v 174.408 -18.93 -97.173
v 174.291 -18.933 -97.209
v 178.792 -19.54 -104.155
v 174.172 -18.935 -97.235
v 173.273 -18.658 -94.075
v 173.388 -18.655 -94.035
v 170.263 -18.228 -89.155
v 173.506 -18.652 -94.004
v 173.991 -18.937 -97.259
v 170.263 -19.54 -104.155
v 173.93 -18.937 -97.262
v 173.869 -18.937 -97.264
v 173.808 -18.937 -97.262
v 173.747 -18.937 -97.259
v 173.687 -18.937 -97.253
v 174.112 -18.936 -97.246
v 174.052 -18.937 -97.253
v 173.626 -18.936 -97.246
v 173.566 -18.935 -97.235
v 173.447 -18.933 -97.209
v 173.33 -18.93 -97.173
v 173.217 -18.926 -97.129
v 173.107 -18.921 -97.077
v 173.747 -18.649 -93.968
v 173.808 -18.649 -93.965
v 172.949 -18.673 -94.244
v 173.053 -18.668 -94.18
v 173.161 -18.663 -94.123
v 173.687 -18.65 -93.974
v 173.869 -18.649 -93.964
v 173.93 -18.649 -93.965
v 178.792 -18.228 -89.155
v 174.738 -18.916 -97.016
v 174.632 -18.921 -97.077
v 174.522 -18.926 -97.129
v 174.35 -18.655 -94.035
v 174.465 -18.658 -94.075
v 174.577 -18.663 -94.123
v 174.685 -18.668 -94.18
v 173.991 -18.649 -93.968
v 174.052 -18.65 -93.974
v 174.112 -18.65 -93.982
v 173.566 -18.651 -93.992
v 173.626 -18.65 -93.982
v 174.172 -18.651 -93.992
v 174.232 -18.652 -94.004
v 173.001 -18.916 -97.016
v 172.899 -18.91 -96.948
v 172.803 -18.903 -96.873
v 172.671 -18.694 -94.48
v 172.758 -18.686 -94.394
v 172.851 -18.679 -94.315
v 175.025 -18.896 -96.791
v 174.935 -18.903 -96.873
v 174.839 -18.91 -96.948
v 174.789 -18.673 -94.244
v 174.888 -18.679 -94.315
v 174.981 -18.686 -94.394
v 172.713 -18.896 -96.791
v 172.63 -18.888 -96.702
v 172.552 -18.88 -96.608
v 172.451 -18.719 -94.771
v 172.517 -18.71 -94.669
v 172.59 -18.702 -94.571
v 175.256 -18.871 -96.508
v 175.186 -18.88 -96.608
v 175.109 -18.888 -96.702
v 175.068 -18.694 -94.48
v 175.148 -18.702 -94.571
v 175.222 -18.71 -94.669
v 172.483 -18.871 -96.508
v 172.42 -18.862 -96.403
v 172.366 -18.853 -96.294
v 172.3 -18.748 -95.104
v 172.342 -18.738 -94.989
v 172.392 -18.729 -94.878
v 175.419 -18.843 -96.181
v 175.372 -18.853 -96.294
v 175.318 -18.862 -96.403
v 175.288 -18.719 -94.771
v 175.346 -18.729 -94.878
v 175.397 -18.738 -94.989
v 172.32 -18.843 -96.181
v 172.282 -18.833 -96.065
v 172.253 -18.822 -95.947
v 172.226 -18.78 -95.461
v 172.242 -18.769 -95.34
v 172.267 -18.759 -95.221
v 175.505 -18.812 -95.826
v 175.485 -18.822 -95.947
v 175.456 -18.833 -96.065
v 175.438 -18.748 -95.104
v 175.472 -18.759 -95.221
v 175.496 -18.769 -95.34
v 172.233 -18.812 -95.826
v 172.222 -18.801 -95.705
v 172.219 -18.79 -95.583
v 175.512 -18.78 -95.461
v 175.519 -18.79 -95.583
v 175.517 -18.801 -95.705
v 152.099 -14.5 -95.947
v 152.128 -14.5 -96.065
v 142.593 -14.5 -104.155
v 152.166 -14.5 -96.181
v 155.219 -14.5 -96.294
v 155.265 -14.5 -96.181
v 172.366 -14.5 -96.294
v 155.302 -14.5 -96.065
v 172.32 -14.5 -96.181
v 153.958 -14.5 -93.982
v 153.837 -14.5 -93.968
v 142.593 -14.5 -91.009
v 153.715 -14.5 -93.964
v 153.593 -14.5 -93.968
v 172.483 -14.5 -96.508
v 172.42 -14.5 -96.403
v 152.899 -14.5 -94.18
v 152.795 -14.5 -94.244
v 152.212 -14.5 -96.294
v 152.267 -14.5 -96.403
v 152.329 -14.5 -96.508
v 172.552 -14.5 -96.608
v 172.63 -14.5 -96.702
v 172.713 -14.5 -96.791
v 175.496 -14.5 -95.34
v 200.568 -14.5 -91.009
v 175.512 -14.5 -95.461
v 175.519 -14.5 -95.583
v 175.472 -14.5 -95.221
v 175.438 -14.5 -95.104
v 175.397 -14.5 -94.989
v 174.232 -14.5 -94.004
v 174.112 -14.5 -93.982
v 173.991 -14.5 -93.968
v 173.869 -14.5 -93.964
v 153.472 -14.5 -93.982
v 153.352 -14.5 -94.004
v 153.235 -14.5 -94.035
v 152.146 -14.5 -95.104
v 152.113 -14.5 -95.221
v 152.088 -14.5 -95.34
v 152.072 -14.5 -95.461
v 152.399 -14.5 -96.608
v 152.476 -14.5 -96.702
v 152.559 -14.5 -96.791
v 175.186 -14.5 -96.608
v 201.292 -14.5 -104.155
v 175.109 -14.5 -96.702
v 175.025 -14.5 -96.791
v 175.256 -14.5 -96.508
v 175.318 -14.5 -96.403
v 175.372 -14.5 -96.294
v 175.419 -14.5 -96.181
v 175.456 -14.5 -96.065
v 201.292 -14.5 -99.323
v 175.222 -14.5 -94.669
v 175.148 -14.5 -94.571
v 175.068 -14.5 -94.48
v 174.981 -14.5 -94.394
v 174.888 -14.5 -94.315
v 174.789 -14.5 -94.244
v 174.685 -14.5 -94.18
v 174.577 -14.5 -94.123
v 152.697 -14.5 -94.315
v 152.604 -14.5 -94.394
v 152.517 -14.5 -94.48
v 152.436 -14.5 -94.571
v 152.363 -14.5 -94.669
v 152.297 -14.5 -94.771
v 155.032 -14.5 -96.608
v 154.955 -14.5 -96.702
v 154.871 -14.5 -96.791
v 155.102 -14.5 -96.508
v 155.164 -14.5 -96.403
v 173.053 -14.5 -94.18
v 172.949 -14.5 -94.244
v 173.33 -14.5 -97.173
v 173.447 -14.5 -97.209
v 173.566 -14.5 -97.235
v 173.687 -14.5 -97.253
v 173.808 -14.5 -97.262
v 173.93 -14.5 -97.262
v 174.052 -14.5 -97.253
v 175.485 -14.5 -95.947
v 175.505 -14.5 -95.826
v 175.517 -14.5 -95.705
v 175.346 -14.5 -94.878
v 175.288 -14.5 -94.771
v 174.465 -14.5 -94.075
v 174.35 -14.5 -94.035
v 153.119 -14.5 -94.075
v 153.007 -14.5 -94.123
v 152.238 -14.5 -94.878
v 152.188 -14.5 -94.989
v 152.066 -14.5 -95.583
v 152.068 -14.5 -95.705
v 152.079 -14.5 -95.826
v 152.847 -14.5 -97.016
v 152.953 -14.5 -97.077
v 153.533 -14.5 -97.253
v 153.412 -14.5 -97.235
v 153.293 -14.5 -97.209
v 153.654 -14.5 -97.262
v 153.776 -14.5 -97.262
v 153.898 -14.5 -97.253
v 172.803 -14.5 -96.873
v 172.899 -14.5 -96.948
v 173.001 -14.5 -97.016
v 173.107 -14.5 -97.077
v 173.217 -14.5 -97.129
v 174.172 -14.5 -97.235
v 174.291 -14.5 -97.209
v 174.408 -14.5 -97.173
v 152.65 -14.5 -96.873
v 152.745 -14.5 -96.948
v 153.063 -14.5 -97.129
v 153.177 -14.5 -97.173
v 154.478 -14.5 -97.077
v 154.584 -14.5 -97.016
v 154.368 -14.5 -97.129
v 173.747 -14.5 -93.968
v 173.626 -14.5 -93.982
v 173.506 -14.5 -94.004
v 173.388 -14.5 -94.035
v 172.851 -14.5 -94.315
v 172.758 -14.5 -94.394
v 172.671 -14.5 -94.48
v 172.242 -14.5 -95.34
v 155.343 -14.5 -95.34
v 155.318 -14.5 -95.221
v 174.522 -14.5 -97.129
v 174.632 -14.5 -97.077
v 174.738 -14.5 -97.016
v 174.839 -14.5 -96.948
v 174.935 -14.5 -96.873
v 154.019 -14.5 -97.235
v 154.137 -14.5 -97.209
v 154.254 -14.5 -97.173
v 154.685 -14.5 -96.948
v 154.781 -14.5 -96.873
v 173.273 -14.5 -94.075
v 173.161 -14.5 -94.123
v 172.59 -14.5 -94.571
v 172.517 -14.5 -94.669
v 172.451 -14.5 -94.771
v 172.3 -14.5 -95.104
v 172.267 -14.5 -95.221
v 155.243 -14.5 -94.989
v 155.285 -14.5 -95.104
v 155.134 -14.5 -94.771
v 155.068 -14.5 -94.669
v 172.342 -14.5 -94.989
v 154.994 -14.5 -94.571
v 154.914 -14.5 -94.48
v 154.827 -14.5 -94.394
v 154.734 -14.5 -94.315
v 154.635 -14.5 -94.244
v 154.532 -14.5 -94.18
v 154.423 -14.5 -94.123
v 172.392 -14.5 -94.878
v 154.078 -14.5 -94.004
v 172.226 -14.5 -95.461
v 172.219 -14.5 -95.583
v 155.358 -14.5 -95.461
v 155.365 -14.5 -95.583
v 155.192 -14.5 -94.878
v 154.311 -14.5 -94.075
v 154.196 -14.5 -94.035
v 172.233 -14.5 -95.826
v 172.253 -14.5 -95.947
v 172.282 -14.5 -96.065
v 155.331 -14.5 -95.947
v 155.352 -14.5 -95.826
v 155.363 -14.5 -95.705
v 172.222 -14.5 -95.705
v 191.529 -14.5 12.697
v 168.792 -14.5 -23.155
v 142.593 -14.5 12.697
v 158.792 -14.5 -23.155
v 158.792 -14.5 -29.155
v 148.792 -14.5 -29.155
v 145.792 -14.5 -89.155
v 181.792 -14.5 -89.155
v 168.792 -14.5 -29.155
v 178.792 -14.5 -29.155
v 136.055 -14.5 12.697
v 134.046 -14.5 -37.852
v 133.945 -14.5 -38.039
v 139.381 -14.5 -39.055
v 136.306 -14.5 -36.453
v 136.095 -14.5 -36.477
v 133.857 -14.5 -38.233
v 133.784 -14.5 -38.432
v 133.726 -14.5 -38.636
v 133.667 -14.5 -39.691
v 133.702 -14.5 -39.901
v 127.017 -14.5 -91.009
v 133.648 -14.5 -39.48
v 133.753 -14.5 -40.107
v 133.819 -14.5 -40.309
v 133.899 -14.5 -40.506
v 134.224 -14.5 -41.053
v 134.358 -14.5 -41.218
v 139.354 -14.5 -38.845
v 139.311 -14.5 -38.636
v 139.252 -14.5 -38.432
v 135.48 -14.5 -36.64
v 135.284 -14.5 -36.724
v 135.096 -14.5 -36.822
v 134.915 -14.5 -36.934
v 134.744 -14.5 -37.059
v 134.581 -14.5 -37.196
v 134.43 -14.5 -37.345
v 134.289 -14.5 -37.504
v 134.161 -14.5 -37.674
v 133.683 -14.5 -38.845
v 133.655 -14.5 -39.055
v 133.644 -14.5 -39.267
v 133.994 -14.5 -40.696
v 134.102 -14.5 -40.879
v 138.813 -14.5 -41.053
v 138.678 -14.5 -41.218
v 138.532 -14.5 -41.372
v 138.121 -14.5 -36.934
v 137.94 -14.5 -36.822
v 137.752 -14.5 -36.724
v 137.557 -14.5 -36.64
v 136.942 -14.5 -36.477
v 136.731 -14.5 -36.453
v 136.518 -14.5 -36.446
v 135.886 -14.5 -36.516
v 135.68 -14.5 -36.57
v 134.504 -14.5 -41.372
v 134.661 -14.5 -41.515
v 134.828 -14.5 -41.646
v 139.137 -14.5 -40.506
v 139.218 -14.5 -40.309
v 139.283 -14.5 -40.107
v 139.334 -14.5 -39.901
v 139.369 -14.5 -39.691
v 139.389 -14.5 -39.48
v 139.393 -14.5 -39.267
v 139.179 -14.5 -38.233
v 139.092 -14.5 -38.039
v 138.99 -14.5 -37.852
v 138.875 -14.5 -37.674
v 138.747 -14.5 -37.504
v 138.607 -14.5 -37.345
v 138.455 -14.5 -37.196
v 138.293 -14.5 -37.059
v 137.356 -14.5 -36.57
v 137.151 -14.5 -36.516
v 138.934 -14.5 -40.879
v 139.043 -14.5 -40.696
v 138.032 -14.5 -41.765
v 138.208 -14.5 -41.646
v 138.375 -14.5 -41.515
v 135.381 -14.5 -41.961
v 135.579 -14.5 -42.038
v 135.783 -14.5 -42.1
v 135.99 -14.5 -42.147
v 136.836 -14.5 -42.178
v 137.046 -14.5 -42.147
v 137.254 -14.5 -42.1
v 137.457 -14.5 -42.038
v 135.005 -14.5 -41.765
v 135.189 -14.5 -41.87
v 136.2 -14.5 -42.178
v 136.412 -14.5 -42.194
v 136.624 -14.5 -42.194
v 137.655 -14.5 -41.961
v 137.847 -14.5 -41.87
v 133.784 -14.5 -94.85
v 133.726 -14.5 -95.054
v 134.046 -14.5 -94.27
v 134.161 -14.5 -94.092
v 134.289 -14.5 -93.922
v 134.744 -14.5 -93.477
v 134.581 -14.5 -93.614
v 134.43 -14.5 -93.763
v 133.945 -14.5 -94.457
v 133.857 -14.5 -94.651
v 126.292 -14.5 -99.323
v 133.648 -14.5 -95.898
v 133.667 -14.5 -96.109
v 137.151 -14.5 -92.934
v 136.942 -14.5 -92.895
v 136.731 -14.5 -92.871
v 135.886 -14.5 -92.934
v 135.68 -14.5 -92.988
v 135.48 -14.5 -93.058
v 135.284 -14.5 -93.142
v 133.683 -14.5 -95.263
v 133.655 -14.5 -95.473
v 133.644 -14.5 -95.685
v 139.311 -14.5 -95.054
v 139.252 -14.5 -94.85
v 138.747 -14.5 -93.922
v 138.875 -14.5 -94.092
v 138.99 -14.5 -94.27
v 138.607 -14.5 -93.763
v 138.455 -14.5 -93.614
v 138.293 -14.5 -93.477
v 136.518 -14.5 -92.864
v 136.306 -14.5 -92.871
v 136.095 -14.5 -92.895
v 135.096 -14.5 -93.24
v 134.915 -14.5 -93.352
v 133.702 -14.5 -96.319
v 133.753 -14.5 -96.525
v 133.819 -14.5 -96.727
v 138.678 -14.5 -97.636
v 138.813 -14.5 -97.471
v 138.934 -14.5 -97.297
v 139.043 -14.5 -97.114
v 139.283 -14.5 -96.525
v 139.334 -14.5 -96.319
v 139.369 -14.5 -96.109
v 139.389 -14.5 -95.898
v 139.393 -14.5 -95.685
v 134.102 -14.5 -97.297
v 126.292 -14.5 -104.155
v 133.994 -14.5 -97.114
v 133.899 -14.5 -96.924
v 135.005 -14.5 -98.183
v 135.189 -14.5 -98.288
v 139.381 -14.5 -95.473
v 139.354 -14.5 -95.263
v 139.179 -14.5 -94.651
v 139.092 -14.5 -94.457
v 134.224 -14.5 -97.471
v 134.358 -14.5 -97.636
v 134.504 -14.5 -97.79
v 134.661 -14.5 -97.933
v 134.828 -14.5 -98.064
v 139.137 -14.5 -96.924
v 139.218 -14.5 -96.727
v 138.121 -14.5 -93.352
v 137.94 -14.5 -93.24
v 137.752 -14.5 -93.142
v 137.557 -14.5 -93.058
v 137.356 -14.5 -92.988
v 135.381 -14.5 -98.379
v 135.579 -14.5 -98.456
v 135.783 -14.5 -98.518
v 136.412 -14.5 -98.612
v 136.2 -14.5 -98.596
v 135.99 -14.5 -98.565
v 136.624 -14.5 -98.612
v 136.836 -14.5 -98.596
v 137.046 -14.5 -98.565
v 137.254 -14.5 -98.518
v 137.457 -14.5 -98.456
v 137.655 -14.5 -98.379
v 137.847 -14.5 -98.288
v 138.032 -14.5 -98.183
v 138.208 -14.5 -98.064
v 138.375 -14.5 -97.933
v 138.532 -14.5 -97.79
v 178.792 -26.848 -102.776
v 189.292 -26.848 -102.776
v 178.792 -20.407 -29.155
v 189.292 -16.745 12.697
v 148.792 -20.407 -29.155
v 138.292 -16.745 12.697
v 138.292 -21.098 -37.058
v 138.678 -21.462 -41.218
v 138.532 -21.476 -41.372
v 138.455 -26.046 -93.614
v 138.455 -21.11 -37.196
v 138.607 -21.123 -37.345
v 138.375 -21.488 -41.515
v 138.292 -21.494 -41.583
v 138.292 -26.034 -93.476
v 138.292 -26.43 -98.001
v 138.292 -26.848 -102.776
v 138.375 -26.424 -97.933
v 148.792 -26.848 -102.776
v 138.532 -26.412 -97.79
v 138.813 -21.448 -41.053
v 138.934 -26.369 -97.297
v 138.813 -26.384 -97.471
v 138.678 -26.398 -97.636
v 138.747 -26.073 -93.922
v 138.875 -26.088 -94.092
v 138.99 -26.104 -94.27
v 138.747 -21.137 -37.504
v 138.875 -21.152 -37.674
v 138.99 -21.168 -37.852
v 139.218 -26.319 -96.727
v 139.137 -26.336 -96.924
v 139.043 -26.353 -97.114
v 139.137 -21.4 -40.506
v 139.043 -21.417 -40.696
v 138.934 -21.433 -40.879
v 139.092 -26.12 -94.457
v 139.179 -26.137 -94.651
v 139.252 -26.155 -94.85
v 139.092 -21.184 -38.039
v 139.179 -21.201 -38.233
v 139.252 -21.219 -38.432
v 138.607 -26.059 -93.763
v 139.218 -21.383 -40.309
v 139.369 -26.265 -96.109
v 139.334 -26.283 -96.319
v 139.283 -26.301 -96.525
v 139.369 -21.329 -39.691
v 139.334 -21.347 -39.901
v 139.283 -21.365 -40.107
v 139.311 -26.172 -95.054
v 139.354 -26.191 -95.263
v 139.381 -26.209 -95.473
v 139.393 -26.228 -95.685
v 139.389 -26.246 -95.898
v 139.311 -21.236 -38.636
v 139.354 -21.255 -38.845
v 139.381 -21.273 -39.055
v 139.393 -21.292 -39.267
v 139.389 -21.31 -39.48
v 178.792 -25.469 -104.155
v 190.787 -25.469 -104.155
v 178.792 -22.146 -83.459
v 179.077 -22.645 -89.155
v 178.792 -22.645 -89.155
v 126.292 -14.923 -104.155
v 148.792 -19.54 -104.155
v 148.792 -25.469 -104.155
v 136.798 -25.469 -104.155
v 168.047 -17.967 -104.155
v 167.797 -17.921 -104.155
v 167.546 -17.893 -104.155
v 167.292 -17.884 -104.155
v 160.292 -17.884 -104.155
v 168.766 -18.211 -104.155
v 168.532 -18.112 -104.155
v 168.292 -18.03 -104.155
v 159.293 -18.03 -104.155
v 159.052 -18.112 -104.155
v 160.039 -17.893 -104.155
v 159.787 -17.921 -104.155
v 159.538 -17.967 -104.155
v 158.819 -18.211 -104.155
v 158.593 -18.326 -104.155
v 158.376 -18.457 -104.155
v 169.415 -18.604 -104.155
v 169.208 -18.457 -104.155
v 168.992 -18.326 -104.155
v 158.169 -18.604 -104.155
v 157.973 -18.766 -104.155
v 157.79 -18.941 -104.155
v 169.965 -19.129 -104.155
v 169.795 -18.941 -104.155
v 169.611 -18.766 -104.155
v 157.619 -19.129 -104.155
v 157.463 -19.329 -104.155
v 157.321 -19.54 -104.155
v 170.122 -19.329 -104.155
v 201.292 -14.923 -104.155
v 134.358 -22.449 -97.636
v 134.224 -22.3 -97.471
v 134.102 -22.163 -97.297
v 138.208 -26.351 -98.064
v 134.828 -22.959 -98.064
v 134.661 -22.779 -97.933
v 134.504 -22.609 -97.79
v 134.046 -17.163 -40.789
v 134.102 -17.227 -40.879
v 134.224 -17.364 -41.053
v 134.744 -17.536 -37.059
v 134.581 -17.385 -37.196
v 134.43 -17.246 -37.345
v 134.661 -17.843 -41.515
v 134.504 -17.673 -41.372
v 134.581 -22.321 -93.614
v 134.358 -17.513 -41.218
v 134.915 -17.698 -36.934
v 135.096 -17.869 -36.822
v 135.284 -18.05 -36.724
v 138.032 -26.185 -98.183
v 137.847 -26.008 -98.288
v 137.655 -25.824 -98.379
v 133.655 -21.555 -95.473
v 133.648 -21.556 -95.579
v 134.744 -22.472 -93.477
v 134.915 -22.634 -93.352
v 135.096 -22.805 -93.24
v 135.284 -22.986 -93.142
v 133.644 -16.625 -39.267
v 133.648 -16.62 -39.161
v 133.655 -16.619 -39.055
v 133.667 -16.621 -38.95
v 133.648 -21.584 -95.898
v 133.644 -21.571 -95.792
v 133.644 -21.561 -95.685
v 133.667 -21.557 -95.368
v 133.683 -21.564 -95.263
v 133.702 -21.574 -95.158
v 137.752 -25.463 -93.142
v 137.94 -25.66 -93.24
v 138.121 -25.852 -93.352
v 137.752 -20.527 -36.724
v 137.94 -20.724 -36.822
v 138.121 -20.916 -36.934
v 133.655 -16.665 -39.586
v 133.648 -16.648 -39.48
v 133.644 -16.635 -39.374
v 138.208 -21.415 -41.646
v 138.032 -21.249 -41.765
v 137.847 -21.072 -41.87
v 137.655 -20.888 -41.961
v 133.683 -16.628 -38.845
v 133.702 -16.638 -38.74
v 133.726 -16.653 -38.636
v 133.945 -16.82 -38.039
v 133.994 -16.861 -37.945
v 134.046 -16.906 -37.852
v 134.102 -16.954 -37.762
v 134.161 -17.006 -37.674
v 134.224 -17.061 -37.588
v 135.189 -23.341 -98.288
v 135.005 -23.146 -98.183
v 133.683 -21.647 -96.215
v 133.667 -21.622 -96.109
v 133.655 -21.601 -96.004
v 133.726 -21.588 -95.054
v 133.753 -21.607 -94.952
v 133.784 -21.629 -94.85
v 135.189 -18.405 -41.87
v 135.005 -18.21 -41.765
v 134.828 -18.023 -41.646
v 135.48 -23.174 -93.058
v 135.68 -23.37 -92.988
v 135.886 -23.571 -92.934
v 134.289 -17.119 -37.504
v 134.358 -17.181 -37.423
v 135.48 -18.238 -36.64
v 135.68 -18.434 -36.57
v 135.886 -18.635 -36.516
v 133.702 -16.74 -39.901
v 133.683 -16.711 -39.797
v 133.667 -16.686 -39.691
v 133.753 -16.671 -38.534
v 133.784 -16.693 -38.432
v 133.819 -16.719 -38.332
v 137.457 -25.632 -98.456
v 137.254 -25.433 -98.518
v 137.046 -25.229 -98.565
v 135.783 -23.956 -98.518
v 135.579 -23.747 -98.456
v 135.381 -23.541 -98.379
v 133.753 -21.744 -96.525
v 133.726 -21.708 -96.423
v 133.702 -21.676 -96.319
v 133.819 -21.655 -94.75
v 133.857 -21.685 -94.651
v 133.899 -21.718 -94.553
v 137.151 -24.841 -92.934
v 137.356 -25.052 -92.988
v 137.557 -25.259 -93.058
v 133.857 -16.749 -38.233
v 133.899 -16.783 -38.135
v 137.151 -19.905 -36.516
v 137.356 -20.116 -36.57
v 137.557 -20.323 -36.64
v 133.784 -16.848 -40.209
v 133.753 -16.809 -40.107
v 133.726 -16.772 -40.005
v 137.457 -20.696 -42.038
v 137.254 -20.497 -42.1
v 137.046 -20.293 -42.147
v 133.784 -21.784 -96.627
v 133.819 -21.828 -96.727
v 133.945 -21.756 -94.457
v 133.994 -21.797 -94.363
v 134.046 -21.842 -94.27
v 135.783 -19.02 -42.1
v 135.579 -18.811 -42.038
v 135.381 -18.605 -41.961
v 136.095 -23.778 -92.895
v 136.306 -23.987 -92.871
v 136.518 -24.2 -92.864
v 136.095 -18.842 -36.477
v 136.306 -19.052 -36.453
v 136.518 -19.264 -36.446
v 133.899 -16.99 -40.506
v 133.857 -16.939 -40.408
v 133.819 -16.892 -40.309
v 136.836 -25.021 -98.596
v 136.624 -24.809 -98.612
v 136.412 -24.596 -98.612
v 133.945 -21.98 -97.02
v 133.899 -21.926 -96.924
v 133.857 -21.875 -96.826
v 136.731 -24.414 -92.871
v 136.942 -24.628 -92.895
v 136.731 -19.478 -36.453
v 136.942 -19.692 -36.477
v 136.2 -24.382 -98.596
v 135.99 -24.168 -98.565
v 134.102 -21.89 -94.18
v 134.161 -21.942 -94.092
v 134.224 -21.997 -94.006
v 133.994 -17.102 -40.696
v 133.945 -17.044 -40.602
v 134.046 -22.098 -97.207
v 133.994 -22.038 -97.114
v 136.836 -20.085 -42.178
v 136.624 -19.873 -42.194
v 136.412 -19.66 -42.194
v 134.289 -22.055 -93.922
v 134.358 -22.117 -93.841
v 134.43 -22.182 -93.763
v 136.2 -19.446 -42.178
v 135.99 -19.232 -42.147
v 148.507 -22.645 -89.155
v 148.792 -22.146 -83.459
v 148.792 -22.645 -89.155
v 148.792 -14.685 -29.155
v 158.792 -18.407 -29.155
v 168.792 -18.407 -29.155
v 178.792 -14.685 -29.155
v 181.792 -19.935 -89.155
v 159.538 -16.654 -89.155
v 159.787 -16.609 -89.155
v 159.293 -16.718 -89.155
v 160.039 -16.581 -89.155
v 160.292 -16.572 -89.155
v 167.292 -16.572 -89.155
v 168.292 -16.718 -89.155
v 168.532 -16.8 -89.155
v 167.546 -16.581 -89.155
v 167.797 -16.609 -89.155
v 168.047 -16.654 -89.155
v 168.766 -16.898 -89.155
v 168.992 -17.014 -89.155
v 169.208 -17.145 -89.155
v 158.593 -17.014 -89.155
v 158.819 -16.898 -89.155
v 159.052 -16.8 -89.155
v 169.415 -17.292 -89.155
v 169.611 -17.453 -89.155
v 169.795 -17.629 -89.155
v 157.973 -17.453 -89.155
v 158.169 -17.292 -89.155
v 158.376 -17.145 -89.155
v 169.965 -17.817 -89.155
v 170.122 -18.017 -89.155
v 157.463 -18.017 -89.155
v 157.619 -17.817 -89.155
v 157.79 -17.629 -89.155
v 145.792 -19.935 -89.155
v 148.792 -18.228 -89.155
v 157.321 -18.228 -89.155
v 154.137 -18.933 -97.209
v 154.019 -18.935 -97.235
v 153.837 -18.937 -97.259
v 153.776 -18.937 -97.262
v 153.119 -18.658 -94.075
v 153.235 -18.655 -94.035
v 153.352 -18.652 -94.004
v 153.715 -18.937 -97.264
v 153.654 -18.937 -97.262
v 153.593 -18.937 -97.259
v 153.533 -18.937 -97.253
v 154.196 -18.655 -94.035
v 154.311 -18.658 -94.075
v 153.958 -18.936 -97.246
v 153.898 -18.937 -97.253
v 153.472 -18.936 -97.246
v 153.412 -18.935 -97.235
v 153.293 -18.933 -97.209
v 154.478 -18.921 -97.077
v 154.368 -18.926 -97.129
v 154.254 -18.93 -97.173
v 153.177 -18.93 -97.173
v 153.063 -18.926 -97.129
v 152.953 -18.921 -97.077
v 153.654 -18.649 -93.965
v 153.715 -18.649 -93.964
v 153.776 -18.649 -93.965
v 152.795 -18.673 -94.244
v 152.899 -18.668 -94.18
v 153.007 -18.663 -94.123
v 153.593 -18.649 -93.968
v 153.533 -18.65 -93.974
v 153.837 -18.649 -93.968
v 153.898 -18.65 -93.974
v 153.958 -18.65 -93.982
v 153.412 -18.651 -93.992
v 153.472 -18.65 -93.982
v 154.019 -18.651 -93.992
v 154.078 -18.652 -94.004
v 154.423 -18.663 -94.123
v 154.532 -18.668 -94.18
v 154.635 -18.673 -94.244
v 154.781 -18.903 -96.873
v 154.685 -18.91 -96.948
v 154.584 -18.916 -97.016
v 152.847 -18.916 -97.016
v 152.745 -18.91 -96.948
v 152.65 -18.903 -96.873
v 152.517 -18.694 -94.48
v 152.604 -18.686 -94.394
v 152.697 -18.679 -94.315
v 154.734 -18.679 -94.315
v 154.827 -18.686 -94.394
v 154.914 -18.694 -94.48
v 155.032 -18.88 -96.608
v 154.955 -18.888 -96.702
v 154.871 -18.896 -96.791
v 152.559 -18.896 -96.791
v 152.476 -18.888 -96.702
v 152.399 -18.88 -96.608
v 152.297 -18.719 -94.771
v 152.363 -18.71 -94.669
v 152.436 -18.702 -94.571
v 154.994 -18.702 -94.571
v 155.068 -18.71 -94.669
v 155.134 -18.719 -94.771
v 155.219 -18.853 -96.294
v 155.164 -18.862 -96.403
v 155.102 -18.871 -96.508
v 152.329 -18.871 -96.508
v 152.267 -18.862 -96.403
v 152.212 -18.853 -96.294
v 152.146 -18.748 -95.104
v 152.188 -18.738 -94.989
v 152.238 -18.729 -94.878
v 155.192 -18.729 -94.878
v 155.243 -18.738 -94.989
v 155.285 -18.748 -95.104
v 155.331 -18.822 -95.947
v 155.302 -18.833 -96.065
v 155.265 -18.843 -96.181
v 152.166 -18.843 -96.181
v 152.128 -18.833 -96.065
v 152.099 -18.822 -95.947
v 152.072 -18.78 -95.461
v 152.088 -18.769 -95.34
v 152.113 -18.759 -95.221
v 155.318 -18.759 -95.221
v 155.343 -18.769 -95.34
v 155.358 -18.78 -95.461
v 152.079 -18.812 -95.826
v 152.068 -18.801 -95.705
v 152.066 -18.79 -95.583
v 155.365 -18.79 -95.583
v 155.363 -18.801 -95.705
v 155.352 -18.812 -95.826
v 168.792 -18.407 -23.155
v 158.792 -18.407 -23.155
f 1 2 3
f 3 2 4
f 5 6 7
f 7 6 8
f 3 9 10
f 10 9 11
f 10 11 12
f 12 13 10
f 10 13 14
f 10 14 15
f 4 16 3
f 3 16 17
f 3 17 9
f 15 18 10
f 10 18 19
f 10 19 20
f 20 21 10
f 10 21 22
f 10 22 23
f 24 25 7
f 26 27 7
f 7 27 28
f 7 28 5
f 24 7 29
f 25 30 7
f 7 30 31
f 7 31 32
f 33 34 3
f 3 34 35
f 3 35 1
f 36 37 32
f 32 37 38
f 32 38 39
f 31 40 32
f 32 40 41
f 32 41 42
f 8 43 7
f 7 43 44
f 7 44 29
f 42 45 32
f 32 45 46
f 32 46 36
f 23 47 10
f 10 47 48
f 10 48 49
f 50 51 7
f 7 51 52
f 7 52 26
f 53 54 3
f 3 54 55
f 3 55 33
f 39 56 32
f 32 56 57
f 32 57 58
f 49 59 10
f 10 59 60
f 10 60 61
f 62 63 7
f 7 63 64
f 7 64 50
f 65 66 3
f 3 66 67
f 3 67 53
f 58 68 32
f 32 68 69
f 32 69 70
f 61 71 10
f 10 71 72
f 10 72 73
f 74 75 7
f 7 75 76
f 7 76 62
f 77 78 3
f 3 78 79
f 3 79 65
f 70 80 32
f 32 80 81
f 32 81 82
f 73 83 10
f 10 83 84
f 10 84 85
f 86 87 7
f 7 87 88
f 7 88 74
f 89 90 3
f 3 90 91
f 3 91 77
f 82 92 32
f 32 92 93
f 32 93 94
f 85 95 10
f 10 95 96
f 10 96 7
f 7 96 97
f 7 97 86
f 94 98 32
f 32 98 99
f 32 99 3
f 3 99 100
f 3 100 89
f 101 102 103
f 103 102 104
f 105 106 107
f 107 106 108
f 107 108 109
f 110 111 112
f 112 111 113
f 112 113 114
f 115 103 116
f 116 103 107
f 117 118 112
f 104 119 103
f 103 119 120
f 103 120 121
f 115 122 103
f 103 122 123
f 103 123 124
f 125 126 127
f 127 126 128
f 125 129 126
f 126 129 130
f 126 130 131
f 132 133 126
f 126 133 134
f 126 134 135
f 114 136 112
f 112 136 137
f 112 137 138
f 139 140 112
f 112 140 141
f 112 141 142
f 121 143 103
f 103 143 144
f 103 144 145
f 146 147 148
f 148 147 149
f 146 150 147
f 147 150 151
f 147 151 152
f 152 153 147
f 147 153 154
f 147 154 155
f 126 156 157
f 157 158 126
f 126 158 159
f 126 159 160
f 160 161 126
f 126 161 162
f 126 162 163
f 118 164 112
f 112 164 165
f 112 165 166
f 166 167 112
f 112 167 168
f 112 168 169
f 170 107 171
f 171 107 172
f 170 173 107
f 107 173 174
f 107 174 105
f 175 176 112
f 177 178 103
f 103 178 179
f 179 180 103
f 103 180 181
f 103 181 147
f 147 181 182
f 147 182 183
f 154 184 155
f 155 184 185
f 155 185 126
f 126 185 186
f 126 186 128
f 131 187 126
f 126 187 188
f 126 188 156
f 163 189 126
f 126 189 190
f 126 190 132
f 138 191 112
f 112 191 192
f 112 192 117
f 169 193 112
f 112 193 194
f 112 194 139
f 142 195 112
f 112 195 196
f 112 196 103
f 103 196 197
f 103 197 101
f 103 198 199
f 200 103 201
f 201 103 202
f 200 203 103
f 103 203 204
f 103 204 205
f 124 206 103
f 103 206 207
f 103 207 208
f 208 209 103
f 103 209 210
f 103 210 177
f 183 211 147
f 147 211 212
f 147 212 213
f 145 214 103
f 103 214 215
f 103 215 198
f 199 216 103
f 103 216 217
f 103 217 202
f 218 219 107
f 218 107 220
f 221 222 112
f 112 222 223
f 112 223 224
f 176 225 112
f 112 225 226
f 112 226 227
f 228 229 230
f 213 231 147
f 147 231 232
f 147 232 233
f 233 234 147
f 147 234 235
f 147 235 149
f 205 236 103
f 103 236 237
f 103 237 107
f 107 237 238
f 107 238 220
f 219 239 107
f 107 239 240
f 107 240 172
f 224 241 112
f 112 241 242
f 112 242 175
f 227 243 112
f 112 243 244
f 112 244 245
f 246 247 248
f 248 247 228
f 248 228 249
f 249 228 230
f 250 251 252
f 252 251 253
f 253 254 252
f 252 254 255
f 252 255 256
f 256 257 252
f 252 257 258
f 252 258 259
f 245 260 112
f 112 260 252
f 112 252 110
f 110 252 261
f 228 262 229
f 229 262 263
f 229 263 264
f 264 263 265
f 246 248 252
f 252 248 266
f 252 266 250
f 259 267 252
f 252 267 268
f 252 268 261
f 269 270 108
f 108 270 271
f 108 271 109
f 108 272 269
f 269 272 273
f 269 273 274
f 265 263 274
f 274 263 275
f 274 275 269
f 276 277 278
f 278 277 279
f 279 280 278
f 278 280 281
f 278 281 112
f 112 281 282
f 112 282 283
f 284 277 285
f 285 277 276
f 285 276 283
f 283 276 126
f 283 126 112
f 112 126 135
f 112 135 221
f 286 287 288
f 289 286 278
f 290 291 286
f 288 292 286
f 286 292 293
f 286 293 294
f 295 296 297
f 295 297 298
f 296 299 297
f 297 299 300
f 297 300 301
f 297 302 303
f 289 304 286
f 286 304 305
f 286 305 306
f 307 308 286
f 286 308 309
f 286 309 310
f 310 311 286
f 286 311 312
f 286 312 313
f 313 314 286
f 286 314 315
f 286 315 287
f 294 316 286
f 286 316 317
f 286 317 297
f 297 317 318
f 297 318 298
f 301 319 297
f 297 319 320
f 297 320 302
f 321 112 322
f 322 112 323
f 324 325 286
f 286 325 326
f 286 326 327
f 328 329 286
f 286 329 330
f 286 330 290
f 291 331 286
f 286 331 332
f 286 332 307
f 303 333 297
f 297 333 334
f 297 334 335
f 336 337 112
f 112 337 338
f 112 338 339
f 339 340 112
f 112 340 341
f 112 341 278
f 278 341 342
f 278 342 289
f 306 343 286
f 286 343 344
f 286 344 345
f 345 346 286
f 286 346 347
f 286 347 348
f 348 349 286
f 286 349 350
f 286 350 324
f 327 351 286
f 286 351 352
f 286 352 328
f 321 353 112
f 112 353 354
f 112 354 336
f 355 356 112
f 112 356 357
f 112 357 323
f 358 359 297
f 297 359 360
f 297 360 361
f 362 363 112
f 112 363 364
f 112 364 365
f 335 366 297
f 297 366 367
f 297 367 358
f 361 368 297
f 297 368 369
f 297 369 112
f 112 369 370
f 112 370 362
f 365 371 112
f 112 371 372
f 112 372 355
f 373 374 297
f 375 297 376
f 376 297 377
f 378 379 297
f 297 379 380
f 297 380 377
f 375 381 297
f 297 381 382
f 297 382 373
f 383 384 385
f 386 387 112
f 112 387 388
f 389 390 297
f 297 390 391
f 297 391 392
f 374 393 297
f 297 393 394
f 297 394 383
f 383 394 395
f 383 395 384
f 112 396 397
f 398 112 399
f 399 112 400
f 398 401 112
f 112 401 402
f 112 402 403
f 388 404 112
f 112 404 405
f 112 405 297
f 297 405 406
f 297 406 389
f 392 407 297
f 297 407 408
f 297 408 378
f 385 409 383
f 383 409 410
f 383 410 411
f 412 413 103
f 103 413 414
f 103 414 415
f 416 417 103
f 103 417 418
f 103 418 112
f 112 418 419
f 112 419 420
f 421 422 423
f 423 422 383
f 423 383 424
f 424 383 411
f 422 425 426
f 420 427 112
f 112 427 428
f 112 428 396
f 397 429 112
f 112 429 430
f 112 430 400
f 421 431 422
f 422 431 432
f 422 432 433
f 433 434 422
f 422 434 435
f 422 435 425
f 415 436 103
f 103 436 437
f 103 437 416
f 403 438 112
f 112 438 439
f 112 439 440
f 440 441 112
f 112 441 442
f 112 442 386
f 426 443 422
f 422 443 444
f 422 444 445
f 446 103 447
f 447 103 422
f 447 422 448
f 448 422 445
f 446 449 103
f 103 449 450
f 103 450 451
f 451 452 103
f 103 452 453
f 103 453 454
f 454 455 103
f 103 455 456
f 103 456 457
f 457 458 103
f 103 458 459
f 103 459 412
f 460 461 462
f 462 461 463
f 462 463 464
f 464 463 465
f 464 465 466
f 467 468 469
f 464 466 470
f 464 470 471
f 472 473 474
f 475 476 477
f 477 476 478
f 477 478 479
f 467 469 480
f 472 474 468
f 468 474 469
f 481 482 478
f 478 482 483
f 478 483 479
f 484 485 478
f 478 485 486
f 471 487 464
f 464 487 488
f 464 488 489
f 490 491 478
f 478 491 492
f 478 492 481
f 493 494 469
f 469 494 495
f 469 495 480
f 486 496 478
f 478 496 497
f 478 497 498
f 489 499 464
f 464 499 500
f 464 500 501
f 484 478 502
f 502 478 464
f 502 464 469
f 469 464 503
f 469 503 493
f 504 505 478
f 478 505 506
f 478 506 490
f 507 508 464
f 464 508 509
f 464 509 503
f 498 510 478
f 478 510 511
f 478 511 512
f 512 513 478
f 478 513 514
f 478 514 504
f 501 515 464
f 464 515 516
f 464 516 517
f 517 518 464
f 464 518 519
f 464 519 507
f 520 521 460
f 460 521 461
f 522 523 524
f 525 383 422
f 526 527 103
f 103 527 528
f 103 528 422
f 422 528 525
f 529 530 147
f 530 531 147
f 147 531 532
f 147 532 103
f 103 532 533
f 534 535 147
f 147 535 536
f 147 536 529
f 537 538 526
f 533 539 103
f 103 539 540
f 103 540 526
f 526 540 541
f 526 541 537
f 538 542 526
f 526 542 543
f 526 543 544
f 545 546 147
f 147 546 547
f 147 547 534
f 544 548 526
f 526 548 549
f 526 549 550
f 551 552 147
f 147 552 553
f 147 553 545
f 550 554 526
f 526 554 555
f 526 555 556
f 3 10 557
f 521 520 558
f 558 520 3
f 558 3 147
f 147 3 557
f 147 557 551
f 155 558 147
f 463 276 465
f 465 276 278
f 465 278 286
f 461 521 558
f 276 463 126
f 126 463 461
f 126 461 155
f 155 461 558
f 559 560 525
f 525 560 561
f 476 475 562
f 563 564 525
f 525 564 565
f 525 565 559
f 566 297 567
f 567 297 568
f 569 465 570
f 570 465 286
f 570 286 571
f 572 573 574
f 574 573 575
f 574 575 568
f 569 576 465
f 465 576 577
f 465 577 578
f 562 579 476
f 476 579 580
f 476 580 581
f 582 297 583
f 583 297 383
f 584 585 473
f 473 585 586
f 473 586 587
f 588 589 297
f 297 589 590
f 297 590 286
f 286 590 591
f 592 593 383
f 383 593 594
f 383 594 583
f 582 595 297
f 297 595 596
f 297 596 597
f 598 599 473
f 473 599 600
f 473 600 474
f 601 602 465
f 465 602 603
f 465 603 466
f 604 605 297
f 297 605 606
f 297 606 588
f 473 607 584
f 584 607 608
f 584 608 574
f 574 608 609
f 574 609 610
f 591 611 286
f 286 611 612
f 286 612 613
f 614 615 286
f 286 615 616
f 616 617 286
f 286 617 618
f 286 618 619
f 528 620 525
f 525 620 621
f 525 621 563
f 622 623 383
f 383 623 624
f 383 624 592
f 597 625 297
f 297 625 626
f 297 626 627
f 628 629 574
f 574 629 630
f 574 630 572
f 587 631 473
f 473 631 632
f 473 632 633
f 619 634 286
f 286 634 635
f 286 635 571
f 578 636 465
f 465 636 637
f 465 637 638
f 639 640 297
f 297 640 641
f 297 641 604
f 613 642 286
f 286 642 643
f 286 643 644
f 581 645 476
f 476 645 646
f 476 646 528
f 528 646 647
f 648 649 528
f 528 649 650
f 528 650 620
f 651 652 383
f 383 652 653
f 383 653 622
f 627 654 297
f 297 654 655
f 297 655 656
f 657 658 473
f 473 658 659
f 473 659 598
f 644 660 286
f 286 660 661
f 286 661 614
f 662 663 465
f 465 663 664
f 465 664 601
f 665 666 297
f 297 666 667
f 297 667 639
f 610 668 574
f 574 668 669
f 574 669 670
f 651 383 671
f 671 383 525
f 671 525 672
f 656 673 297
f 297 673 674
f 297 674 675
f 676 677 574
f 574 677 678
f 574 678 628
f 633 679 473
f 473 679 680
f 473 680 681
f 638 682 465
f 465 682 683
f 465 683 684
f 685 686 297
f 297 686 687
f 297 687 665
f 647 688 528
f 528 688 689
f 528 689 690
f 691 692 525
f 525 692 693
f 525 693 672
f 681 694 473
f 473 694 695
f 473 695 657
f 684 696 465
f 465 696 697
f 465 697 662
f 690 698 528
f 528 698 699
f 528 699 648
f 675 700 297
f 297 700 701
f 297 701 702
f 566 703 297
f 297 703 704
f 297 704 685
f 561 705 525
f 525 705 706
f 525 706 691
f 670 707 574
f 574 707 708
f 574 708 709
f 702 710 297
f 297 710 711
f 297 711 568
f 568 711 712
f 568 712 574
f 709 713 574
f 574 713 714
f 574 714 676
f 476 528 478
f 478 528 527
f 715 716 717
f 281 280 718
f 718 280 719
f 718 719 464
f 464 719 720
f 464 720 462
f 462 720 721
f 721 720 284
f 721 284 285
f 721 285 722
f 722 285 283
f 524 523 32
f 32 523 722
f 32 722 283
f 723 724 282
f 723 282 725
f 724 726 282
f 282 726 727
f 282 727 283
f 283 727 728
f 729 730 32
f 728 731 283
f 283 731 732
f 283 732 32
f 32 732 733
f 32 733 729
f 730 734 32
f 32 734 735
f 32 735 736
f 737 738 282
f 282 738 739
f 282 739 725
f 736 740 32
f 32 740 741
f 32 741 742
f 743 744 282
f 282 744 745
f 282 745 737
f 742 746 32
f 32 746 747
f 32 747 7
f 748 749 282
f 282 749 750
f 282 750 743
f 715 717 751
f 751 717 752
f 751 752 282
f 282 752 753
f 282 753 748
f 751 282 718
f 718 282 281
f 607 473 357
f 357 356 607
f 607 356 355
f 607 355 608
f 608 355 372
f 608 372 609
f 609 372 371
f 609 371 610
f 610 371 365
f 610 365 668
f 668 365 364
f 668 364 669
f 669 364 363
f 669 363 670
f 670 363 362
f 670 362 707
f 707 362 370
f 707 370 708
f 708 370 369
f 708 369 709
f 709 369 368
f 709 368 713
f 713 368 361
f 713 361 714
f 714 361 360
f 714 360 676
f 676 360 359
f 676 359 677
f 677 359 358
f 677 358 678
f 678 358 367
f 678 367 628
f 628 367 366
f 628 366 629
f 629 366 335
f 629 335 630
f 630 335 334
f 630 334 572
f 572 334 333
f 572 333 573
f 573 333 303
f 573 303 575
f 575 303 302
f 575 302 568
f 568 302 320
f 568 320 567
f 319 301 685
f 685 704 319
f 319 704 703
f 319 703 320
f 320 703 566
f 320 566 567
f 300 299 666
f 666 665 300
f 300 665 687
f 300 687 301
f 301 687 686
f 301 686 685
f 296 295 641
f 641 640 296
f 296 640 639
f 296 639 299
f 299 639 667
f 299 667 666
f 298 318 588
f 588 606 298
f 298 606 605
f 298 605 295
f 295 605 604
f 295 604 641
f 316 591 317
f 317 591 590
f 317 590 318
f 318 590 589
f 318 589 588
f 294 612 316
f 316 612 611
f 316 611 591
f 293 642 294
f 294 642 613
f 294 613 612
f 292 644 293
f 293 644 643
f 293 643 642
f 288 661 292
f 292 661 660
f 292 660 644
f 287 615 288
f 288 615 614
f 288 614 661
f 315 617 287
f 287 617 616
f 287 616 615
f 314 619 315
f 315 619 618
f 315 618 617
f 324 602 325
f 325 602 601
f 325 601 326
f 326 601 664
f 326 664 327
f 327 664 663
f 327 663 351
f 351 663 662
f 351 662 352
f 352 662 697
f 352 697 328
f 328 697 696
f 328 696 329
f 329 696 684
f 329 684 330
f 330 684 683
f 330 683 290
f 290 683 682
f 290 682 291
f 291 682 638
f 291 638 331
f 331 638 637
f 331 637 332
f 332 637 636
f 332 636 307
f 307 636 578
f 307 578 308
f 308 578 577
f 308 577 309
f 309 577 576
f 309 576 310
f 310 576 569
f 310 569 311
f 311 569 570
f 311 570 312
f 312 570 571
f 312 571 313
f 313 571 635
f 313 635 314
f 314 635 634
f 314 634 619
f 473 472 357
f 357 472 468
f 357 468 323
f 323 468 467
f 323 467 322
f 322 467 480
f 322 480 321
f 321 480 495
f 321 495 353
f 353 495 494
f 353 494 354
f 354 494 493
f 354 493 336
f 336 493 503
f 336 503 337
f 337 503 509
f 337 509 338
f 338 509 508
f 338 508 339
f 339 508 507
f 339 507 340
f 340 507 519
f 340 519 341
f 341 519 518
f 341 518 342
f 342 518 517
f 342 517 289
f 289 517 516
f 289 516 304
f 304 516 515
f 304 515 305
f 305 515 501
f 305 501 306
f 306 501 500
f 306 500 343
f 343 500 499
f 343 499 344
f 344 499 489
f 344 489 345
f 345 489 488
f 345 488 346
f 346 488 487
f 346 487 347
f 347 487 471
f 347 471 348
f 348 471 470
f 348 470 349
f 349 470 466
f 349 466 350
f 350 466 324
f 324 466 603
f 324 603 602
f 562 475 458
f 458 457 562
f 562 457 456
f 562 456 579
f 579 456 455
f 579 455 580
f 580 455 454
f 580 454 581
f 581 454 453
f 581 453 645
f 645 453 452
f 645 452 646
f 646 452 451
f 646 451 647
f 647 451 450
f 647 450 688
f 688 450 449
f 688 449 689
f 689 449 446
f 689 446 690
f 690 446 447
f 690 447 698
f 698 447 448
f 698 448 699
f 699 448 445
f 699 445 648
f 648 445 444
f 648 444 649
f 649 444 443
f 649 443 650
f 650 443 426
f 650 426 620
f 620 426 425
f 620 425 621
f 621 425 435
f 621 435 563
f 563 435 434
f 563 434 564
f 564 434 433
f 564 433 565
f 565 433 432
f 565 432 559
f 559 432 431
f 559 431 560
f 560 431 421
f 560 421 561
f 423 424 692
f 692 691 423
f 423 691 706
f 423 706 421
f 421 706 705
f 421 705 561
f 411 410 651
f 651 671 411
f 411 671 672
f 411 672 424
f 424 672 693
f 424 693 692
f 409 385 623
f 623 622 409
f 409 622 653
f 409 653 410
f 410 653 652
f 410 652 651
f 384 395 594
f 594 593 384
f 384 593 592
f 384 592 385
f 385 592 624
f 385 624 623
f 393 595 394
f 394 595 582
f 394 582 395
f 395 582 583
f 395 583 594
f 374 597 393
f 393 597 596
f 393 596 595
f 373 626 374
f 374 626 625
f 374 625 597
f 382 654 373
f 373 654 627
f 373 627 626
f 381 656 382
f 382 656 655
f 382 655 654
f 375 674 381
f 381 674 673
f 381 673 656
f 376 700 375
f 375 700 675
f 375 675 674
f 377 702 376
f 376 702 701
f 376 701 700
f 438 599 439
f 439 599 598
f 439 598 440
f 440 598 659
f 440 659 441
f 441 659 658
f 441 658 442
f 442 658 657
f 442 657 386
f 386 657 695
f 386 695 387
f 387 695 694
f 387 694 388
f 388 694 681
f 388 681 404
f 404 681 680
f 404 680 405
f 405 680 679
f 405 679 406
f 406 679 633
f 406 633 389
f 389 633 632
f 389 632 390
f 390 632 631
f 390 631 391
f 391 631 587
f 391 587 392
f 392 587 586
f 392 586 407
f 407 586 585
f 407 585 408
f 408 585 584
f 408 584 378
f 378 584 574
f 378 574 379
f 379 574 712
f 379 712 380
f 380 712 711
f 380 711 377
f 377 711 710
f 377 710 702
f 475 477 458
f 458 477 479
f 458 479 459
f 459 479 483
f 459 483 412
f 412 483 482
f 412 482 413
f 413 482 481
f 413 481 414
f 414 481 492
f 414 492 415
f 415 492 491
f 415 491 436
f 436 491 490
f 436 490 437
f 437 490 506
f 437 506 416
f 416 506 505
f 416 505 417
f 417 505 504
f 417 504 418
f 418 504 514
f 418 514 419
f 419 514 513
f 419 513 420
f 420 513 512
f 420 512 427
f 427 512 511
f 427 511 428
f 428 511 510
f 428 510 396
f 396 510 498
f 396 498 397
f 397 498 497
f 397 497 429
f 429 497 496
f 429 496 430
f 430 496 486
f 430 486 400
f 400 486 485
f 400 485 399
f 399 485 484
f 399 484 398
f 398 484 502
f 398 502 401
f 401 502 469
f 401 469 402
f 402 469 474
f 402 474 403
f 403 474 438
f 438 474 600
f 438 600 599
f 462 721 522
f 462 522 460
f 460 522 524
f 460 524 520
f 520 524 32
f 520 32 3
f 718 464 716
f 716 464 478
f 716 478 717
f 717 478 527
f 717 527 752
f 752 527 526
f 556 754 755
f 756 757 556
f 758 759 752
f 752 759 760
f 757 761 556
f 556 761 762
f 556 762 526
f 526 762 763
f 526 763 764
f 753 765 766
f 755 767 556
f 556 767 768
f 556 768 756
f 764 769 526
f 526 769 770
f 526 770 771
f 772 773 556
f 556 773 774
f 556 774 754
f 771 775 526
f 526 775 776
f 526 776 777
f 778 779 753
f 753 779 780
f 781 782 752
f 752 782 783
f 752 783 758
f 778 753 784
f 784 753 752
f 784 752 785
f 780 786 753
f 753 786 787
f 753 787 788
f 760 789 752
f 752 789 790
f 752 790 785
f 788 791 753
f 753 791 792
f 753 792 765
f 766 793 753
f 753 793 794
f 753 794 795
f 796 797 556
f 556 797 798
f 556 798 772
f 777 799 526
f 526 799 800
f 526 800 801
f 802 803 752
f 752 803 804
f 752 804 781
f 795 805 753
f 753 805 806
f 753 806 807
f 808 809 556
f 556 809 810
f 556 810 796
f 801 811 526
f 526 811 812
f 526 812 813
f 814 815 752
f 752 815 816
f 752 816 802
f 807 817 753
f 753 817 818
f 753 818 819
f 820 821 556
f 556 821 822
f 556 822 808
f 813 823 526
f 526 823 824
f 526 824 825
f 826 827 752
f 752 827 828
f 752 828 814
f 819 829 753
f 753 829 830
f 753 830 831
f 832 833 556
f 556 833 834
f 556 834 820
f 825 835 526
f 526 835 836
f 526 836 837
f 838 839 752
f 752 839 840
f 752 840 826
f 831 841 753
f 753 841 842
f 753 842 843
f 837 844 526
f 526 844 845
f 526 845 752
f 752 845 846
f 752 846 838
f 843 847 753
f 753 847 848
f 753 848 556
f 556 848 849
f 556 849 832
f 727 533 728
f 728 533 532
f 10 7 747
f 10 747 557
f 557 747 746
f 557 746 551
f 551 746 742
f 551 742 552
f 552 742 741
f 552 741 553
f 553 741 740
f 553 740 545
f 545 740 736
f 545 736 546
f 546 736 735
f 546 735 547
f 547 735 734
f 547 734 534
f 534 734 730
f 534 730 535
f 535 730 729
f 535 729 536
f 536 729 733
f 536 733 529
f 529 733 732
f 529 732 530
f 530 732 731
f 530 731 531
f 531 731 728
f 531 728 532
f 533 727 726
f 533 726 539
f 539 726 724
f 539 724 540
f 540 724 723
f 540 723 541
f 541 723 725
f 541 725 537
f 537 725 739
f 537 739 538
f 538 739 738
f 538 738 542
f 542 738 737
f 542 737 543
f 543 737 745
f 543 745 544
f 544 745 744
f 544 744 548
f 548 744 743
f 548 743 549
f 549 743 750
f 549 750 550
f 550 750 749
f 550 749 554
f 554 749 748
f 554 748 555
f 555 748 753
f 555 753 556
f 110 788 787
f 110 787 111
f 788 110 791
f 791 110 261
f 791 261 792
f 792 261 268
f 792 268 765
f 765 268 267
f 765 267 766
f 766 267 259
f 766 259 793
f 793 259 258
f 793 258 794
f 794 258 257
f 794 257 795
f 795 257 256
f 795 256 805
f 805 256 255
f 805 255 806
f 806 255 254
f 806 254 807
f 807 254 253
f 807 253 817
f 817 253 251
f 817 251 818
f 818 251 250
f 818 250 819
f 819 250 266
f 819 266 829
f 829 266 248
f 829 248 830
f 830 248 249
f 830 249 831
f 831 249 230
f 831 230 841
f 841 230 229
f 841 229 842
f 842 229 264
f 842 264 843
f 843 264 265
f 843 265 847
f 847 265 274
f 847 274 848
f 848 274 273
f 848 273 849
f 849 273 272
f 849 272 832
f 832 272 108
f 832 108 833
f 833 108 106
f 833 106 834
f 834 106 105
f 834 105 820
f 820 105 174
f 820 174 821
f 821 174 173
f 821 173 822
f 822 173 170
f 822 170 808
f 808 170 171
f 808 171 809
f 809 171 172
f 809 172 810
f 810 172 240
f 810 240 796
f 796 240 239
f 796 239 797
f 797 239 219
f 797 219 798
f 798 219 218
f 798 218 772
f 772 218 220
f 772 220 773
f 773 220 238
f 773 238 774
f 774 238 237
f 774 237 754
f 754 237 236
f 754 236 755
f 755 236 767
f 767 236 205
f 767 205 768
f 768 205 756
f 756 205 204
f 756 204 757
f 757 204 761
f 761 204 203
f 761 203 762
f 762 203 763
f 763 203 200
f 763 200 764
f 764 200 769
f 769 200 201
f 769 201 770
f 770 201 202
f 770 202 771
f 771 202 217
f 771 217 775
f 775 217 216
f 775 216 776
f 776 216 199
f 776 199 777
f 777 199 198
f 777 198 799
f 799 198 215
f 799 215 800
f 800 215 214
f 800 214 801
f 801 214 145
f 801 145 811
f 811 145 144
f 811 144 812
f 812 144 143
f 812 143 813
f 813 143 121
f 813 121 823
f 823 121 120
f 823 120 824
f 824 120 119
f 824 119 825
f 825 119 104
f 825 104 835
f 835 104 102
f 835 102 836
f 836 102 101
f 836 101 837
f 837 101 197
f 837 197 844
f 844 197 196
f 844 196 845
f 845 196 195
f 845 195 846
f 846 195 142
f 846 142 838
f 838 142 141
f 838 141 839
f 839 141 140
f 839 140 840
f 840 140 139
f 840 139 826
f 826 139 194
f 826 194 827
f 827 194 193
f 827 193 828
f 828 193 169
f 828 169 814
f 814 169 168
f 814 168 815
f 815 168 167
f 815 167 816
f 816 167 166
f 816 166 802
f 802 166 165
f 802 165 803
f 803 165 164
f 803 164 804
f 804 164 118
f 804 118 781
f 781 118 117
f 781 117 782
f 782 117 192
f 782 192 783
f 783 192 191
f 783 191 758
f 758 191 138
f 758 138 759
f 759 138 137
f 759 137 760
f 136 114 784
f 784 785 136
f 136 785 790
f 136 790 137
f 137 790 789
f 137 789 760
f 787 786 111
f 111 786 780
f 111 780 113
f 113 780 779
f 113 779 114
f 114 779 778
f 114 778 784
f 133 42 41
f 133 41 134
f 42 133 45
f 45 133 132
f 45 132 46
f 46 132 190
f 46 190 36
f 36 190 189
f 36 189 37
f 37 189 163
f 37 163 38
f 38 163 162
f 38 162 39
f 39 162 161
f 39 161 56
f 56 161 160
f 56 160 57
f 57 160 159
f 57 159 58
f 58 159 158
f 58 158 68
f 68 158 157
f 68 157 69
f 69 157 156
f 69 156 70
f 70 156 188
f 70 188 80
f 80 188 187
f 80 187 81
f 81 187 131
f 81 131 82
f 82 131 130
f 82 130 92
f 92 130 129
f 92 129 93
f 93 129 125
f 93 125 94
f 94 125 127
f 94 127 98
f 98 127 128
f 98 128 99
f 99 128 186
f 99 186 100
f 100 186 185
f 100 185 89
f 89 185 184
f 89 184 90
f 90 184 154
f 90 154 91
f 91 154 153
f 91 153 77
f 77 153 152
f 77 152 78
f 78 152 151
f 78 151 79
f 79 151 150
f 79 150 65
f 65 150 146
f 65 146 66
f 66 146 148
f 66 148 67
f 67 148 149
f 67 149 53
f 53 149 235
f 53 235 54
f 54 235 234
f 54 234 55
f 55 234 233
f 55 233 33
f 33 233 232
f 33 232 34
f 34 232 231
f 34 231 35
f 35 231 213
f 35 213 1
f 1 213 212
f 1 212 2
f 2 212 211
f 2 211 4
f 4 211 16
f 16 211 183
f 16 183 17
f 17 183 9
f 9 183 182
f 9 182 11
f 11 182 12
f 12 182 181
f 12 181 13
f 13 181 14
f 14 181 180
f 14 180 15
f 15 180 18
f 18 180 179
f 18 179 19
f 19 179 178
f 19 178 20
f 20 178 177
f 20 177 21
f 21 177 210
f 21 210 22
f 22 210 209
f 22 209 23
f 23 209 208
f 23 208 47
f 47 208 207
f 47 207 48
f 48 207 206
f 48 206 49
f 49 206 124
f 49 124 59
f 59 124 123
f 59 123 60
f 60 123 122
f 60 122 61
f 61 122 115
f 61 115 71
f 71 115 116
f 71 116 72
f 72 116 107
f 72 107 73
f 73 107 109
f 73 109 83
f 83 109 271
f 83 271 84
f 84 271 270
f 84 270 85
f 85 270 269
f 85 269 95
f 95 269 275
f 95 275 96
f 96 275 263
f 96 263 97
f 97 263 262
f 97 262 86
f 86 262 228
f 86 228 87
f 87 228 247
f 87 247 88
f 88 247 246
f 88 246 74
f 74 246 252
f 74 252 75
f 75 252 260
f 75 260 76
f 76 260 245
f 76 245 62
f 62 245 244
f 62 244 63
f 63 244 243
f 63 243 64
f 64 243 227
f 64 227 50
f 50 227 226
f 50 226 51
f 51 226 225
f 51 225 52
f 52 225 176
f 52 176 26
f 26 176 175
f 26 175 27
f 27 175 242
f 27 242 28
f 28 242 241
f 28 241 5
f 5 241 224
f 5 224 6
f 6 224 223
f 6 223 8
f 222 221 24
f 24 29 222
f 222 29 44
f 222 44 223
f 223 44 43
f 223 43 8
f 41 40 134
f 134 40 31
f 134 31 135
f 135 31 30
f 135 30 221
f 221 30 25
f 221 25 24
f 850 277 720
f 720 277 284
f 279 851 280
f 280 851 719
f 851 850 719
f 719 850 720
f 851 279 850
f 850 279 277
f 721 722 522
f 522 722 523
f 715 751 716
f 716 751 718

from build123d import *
from OCP.BRepFilletAPI import BRepFilletAPI_MakeChamfer

# Parameters (mm, degrees)
BOSS_EXTRUDE1_START = 126.292269218
BOSS_EXTRUDE1_DEPTH = 75
CHAMFER1_SIZE       = 12
CHAMFER2_SIZE       = 1.5
CHAMFER2_SIZE2      = 1.38459352
CUT_EXTRUDE1_REACH  = 228.979
SKETCH5_R           = 2.875
CUT_EXTRUDE2_DEPTH  = 227.978701072
SKETCH6_W           = 30
SKETCH6_H           = 15
SKETCH6_R           = 2.875
SKETCH6_H_2         = 60
CUT_EXTRUDE3_DEPTH  = 227.978701072
BOSS_EXTRUDE2_START = 148.792269218
BOSS_EXTRUDE2_DEPTH = 30
CUT_EXTRUDE4_DEPTH  = 30
SKETCH11_R          = 1.65
CUT_EXTRUDE5_DEPTH  = 227.978701072
SKETCH12_W          = 10
SKETCH12_H          = 3.906967626
CUT_EXTRUDE6_DEPTH  = 6
CHAMFER3_SIZE       = 2.7
CHAMFER3_SIZE2      = 2.711828512


# Read off the part's stored shape, not the designer's step: Boss-Extrude1, Boss-Extrude2
with BuildPart() as part:
    # Boss-Extrude1 outline → Boss-Extrude1 (new body)
    with BuildSketch(Plane.YZ.offset(BOSS_EXTRUDE1_START)):
        Polygon((-26.968617391, -104.155083501), (-14.5, -104.155083501), (-14.5, 12.696761663), (-16.745405627, 12.696761663), align=None)
    extrude(amount=BOSS_EXTRUDE1_DEPTH)

    # Chamfer1
    chamfer1_edges = [part.edges().sort_by_distance(p)[0] for p in [
        (201.292269218, -21.857011509, -45.729160919),
        (126.292269218, -21.857011509, -45.729160919),
    ]]
    chamfer(chamfer1_edges, length=CHAMFER1_SIZE)

    # Chamfer2
    chamfer2_edges = [part.edges().sort_by_distance(p)[0] for p in [
        (163.792269218, -26.968617391, -104.155083501),
    ]]
    chamfer2_side = [part.faces().sort_by_distance(p)[0] for p in [
        (163.792269218, -20.328588559, -104.155083501),
    ]]
    chamfer(chamfer2_edges, length=CHAMFER2_SIZE, length2=CHAMFER2_SIZE2, reference=chamfer2_side[0])

    # Cut-Extrude1: up to this plane
    cut_extrude1_end = Plane(origin=(0, -14.732006126, 1.288883527), z_dir=(0, -0.9961946980917461, 0.08715574274765119))
    # Sketch3 → Cut-Extrude1 (cut, up to the surface)
    with BuildSketch(Plane(origin=(0, -14.5, 0), x_dir=(1, 0, 0), z_dir=(0, 1, 0)), mode=Mode.PRIVATE) as cut_extrude1_sk1:
        Polygon((145.792269218, 89.155083501), (181.792269218, 89.155083501), (178.792269218, 29.155083501), (148.792269218, 29.155083501), align=None)
    cut_extrude1_tool1 = split(extrude(cut_extrude1_sk1.sketch, amount=-CUT_EXTRUDE1_REACH, mode=Mode.PRIVATE), bisect_by=cut_extrude1_end, keep=Keep.BOTH, mode=Mode.PRIVATE)
    add(cut_extrude1_tool1.solids().sort_by_distance((163.792269, -14.5, -60.064174))[0], mode=Mode.SUBTRACT)

    # Sketch5 → Cut-Extrude2 (cut, through all)
    with BuildSketch(Plane(origin=(0, -14.5, 0), x_dir=(1, 0, 0), z_dir=(0, 1, 0))):
        with Locations(Location((173.869198237, 95.613531365, 0), (0, 0, 270))):
            Circle(SKETCH5_R)
        with Locations(Location((136.518193504, 95.738532693, 0), (0, 0, 270))):
            Circle(SKETCH5_R)
        with Locations(Location((136.518193504, 39.320563904, 0), (0, 0, 270))):
            Circle(SKETCH5_R)
    extrude(amount=-CUT_EXTRUDE2_DEPTH, mode=Mode.SUBTRACT)

    # Sketch6 → Cut-Extrude3 (cut, through all)
    # profile 1 of 2: a face of its own
    with BuildSketch(Plane(origin=(0, -14.5, 0), x_dir=(1, 0, 0), z_dir=(0, 1, 0))):
        with Locations((163.792269218, 96.655083501)):
            Rectangle(SKETCH6_W, SKETCH6_H)
        with Locations((173.869198237, 95.613531365)):
            Circle(SKETCH6_R, mode=Mode.SUBTRACT)
    # profile 2 of 2: a face of its own
    with BuildSketch(Plane(origin=(0, -14.5, 0), x_dir=(1, 0, 0), z_dir=(0, 1, 0))):
        with Locations((163.792269218, 59.155083501)):
            Rectangle(SKETCH6_W, SKETCH6_H_2)
    extrude(amount=-CUT_EXTRUDE3_DEPTH, mode=Mode.SUBTRACT)

    # Boss-Extrude2 outline → Boss-Extrude2 (add)
    with BuildSketch(Plane.YZ.offset(BOSS_EXTRUDE2_START)):
        Polygon((-19.540350593, -104.155083501), (-14.5, -104.155083501), (-14.5, -89.155083501), (-18.22802064, -89.155083501), align=None)
    extrude(amount=BOSS_EXTRUDE2_DEPTH)

    # Sketch9 → Cut-Extrude4 (cut)
    with BuildSketch(Plane(origin=(0, -9.191601139, -105.06048176), x_dir=(-1, 0, 0), z_dir=(0, -0.08715574274765119, -0.9961946980917462))):
        with BuildLine():
            Line((-167.292269218, -8.738279996), (-160.292269218, -8.738279996))
            ThreePointArc((-160.292269218, -8.738279996), (-156.792269218, -12.238279996), (-160.292269218, -15.738279996))
            Line((-160.292269218, -15.738279996), (-167.292269218, -15.738279996))
            ThreePointArc((-167.292269218, -15.738279996), (-170.792269218, -12.238279996), (-167.292269218, -8.738279996))
        make_face()
    extrude(amount=-CUT_EXTRUDE4_DEPTH, mode=Mode.SUBTRACT)

    # Sketch11 → Cut-Extrude5 (cut, through all)
    with BuildSketch(Plane(origin=(0, -14.5, 0), x_dir=(1, 0, 0), z_dir=(0, 1, 0))):
        with Locations(Location((173.869198237, 95.613531365, 0), (0, 0, 270))):
            Circle(SKETCH11_R)
        with Locations(Location((153.7153402, 95.613531365, 0), (0, 0, 270))):
            Circle(SKETCH11_R)
    extrude(amount=-CUT_EXTRUDE5_DEPTH, mode=Mode.SUBTRACT)

    # Sketch12 → Cut-Extrude6 (cut)
    with BuildSketch(Plane(origin=(0, 0, -29.155083501), x_dir=(-1, 0, 0), z_dir=(0, 0, -1))):
        with Locations((-163.792269218, -16.453483813)):
            Rectangle(SKETCH12_W, SKETCH12_H)
    extrude(amount=-CUT_EXTRUDE6_DEPTH, mode=Mode.SUBTRACT)

    # Chamfer3: one chamfer whose edges measure the first distance from different faces: ONE call of the kernel's chamfer builder (chamfer() names one face for all edges)
    chamfer3_edges_1 = [part.edges().sort_by_distance(p)[0] for p in [
        (180.292269218, -20.020168019, -59.155083501),
    ]]
    chamfer3_side_1 = [part.faces().sort_by_distance(p)[0] for p in [
        (180.530002915, -17.468074044, -63.909757447),
    ]]
    chamfer3_edges_2 = [part.edges().sort_by_distance(p)[0] for p in [
        (147.292269218, -20.020168019, -59.155083501),
    ]]
    chamfer3_side_2 = [part.faces().sort_by_distance(p)[0] for p in [
        (147.054535521, -17.468074044, -63.909757447),
    ]]
    chamfer3 = BRepFilletAPI_MakeChamfer(part.part.solid().wrapped)
    for e in chamfer3_edges_1:
        chamfer3.Add(CHAMFER3_SIZE, CHAMFER3_SIZE2, e.wrapped, chamfer3_side_1[0].wrapped)  # the first distance lies on this face
    for e in chamfer3_edges_2:
        chamfer3.Add(CHAMFER3_SIZE, CHAMFER3_SIZE2, e.wrapped, chamfer3_side_2[0].wrapped)  # the first distance lies on this face
    add(Compound.cast(chamfer3.Shape()), mode=Mode.REPLACE)


solid = part.part
